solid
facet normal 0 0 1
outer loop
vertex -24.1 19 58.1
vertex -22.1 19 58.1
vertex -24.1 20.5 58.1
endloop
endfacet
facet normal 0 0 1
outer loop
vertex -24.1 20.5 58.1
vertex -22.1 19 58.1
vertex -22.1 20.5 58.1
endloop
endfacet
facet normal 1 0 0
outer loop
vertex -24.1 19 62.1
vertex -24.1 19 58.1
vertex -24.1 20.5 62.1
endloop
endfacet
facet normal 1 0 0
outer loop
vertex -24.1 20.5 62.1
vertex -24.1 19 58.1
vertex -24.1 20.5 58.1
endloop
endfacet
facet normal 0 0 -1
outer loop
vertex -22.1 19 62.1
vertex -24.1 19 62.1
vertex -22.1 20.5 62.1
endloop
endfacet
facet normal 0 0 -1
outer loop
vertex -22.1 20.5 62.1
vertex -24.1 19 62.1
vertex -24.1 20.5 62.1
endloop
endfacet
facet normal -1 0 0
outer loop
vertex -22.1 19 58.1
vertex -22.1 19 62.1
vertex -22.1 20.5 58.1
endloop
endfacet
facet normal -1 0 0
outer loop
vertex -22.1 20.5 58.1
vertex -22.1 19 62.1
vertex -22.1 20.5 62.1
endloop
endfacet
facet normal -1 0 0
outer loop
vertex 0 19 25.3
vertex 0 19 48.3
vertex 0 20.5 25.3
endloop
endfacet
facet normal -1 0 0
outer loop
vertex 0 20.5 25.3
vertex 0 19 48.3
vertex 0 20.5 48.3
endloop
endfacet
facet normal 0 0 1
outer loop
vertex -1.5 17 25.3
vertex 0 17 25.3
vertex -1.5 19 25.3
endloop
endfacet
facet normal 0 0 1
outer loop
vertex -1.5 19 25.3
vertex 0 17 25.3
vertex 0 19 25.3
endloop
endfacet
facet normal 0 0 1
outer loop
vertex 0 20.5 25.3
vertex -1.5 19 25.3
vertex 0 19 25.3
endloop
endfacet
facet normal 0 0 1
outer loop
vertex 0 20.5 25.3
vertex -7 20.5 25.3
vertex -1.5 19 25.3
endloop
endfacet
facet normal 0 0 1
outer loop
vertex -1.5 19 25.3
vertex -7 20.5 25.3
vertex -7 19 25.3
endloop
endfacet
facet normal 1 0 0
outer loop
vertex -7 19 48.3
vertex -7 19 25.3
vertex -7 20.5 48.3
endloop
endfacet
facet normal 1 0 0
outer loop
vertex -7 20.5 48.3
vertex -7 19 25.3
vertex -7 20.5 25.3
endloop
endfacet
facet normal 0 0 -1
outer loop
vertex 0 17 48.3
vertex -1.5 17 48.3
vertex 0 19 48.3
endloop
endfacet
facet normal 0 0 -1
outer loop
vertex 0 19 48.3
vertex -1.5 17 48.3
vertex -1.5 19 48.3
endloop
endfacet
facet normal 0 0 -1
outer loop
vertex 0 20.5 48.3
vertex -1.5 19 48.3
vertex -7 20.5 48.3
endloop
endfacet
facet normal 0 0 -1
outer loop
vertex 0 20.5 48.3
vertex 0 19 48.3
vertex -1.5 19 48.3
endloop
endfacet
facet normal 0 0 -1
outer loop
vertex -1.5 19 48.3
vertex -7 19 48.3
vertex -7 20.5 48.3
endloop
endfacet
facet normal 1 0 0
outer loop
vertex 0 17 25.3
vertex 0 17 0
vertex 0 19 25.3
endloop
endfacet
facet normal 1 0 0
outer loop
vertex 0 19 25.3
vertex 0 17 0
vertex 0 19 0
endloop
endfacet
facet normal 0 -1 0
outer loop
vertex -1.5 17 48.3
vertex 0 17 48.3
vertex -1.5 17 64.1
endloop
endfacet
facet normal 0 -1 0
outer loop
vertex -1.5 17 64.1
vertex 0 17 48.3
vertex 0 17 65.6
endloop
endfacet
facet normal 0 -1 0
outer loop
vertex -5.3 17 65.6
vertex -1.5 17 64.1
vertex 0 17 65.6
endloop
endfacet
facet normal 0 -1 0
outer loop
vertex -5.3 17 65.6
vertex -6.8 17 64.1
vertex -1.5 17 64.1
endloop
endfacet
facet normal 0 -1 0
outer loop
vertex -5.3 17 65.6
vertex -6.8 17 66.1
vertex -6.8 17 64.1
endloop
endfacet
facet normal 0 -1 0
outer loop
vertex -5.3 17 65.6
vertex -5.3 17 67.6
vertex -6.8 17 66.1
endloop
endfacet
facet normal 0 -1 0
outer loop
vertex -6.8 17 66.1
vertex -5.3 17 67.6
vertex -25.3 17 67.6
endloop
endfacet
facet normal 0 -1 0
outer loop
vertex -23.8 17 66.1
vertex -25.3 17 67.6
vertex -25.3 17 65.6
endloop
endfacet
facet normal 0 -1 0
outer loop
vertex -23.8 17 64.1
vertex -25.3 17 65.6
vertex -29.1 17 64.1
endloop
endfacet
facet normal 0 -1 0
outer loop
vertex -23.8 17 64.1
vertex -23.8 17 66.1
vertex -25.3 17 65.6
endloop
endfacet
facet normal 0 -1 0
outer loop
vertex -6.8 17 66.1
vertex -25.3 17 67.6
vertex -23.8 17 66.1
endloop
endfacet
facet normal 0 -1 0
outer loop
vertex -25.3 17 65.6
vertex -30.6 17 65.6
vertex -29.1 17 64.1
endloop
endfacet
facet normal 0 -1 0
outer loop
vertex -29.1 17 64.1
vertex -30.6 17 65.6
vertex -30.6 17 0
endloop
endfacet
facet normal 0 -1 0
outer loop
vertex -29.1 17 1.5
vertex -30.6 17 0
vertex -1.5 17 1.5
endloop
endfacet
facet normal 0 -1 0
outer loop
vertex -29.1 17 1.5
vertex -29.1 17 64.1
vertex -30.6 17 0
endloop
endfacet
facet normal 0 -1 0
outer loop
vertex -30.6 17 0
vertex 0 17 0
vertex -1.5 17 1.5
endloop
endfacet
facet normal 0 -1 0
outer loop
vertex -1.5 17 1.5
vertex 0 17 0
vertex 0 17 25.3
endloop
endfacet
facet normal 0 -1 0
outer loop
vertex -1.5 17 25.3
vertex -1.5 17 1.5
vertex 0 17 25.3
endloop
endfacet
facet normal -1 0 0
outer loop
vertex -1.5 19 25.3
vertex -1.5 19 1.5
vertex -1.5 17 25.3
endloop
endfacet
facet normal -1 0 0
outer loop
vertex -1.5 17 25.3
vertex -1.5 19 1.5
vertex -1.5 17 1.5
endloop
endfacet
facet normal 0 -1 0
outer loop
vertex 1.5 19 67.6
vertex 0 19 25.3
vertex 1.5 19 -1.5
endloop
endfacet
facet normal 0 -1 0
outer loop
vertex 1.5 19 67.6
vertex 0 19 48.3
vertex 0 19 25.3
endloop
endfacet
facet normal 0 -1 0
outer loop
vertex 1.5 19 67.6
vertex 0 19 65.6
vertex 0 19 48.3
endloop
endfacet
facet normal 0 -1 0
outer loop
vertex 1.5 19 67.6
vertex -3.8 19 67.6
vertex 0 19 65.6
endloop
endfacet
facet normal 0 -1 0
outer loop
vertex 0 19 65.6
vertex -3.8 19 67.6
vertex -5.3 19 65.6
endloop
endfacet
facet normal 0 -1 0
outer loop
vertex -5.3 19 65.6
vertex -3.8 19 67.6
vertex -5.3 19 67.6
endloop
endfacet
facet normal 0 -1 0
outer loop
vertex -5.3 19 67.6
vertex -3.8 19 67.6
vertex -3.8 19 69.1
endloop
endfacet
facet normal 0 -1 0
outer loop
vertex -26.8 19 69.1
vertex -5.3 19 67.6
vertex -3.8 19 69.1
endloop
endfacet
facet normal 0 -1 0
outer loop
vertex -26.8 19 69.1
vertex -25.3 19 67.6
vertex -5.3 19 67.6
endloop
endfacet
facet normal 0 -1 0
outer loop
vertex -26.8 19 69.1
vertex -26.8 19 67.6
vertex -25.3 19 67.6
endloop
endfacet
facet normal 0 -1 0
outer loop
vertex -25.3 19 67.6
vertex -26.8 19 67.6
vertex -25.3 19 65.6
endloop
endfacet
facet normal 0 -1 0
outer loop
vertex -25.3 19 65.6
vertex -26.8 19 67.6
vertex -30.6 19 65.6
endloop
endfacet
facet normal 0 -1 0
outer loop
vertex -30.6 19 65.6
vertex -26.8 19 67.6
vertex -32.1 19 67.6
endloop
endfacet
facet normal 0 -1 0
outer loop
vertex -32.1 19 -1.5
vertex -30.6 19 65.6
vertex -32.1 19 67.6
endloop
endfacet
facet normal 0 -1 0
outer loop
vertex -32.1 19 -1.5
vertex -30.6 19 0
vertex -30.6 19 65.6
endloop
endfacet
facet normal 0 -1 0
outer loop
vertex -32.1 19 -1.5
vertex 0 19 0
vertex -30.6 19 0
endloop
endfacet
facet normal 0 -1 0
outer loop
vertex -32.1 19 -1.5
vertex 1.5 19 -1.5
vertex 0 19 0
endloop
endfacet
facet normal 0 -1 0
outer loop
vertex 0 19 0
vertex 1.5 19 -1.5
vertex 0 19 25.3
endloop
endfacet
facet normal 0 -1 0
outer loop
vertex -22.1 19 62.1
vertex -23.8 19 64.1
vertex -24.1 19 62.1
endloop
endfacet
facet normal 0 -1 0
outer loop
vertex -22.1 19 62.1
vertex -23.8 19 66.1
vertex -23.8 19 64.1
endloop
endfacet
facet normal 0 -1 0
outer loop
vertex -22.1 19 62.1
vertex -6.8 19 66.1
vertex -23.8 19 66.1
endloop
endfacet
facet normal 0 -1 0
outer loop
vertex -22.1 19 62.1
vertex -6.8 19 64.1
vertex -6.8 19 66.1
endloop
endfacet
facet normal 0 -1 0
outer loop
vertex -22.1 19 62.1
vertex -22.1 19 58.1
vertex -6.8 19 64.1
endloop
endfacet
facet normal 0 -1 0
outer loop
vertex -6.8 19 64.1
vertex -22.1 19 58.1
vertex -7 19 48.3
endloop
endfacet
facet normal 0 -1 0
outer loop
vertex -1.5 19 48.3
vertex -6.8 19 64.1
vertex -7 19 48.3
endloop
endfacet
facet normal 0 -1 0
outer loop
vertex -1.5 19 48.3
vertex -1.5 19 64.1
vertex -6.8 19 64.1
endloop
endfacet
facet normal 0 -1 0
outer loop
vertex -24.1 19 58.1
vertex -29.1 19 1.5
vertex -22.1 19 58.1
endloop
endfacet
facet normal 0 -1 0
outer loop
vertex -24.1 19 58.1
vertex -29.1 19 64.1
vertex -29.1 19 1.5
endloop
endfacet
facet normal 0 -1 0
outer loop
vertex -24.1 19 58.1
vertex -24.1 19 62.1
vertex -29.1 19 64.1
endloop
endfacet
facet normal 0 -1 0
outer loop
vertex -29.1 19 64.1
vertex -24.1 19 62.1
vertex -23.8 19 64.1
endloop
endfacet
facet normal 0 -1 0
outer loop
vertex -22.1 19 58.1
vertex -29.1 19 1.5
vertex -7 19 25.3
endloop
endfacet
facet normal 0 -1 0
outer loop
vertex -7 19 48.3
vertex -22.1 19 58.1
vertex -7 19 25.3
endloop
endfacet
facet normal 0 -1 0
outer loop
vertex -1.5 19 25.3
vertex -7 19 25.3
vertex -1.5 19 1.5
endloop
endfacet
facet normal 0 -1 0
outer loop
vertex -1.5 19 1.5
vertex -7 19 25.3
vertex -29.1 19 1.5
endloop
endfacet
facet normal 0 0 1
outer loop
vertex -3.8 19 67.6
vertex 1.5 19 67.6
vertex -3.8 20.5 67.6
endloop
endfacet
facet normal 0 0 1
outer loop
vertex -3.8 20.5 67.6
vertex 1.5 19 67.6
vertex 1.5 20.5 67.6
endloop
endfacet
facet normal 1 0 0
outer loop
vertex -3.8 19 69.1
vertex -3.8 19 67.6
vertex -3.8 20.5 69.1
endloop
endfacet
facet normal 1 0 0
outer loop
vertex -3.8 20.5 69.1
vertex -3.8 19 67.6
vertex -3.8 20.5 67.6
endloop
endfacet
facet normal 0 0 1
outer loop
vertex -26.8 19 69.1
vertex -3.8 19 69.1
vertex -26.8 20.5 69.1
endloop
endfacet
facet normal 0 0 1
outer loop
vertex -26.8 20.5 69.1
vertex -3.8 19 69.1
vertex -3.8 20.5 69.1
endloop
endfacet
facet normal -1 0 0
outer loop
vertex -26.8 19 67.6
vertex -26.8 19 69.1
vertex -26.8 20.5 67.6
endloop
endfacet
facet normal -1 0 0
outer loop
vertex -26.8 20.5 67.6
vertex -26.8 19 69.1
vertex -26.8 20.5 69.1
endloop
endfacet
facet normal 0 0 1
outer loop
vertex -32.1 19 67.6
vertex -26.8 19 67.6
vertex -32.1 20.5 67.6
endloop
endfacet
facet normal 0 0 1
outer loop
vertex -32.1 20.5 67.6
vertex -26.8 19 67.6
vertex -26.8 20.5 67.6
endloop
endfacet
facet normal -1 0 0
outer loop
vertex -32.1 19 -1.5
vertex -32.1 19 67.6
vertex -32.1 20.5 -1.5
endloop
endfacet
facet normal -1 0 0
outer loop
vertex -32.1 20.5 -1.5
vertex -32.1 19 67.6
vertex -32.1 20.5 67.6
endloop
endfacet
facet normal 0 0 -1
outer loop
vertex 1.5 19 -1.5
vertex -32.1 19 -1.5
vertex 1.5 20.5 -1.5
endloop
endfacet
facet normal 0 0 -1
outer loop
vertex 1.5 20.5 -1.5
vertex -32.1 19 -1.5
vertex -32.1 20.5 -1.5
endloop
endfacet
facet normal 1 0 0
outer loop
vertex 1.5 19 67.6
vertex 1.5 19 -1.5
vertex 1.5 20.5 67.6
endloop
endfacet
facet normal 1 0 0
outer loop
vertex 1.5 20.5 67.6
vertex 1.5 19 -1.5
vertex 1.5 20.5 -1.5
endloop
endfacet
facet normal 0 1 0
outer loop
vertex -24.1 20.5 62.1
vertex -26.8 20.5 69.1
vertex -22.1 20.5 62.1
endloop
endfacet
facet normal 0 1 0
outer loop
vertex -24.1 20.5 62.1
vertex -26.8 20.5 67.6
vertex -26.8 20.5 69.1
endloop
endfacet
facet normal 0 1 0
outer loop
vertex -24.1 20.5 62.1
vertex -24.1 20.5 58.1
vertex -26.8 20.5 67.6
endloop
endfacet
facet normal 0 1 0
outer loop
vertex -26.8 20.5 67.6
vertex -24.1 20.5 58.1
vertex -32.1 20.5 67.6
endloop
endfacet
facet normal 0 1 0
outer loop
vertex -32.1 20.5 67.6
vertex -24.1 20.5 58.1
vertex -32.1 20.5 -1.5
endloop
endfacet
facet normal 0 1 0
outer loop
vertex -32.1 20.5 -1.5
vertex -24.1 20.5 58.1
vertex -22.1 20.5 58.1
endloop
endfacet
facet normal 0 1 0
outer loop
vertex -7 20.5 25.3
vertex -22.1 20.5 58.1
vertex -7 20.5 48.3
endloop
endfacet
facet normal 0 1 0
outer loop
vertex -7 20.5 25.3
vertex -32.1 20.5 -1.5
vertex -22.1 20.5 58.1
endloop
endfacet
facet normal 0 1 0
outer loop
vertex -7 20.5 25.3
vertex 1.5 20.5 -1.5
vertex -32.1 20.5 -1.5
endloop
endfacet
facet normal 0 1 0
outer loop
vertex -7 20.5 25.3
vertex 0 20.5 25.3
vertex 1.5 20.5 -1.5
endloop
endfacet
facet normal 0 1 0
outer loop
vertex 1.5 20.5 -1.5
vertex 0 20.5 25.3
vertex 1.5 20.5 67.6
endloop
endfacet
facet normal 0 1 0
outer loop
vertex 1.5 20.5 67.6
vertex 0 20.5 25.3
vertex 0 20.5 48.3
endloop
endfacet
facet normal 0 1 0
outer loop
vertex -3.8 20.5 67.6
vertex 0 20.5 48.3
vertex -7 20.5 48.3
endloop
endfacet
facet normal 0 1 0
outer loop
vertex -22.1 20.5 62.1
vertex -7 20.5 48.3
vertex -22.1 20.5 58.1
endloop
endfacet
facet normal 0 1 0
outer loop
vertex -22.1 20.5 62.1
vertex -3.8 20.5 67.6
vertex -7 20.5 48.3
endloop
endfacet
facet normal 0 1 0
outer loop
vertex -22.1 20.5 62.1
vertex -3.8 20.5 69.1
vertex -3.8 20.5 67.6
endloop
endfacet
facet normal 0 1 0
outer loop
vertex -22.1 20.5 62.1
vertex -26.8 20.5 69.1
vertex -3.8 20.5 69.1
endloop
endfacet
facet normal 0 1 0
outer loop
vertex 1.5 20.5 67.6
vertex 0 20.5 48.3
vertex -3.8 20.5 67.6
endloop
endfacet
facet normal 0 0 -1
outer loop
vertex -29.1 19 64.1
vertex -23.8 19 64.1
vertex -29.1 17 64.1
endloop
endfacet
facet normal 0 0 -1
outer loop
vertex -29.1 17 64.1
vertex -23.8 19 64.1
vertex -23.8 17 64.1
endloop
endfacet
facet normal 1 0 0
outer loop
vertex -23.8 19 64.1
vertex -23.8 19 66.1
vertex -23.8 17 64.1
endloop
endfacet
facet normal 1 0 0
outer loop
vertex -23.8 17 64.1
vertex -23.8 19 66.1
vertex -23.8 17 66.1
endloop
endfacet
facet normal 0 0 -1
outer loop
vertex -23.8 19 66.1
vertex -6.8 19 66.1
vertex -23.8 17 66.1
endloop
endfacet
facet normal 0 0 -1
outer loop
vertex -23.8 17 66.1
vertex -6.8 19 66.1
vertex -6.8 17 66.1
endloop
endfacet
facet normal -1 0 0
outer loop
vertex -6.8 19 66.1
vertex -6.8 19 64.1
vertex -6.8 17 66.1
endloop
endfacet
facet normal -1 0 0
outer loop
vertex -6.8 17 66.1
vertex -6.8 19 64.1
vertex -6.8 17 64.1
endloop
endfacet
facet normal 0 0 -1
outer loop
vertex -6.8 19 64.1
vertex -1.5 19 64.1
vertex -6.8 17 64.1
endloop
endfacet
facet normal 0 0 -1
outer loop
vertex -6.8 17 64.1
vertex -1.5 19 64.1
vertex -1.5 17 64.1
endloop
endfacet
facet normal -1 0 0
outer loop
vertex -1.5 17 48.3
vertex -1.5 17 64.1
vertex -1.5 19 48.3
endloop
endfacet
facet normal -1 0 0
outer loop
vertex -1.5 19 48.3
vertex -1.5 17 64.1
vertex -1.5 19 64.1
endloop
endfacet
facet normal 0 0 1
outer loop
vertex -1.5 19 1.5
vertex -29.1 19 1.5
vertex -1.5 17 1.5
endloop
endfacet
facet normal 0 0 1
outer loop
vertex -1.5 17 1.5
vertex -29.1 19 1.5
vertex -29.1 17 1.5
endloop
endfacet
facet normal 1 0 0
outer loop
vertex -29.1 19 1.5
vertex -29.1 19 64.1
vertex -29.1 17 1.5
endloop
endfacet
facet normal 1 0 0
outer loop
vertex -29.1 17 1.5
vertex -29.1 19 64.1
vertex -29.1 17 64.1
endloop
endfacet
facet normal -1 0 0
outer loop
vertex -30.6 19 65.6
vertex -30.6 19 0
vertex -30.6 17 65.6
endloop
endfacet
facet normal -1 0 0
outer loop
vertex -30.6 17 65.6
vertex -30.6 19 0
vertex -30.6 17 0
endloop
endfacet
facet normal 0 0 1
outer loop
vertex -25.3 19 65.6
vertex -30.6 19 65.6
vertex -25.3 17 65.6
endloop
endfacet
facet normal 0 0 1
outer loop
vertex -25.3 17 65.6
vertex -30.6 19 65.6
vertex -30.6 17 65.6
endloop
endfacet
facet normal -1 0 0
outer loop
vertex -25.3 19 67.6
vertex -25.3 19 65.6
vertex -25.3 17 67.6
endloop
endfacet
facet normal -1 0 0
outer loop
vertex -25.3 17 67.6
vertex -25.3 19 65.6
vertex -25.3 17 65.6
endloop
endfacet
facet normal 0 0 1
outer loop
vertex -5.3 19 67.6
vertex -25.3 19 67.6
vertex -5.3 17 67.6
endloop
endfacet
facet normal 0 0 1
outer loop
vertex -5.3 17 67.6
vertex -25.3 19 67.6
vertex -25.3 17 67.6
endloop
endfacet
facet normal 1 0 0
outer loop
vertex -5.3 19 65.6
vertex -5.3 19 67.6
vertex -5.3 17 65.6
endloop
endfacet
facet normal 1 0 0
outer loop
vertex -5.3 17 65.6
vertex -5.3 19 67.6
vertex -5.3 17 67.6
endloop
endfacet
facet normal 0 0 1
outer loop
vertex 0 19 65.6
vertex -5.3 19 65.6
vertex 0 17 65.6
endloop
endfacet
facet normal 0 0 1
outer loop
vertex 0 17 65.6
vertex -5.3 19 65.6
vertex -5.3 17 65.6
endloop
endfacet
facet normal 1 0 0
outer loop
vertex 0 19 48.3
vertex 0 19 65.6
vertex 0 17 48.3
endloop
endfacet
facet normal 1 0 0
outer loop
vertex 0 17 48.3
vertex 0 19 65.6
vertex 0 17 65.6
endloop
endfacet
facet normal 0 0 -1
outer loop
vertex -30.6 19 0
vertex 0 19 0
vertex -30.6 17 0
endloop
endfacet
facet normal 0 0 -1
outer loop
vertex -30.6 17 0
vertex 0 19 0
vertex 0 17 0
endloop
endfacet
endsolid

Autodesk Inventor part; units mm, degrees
ref_plane "YZ Plane" through (0, 0, 0) normal (1, 0, 0) x (0, 1, 0)
ref_plane "XZ Plane" through (0, 0, 0) normal (0, 1, 0) x (-1, 0, 0)
ref_plane "XY Plane" through (0, 0, 0) normal (0, 0, 1) x (1, 0, 0)
ref_plane "Płaszczyzna konstrukcyjna1" through (0, 19, 0) normal (0, 1, 0) x (1, 0, 0)
sketch "Szkic21" plane through (0, 19, 0) normal (0, 1, 0) x (1, 0, 0)
  line L0 (-5.3, -65.6) -> (-5.3, -67.6) projected
  line L1 (-25.3, -67.6) -> (-5.3, -67.6)
  line L2 (0, -65.6) -> (-5.3, -65.6) projected
  line L3 (-5.3, -67.6) -> (-5.3, -65.6)
  line L4 (-5.3, -65.6) -> (0, -65.6)
  line L5 (0, 0) -> (0, -65.6) projected
  line L6 (0, -65.6) -> (0, 0)
  line L7 (-30.6, -65.6) -> (-30.6, 0) projected
  line L8 (0, 0) -> (-30.6, 0)
  line L9 (-30.6, 0) -> (-30.6, -65.6)
  line L10 (-25.3, -67.6) -> (-25.3, -65.6) projected
  line L11 (-30.6, -65.6) -> (-25.3, -65.6)
  line L12 (-25.3, -65.6) -> (-25.3, -67.6)
  line L13 (-30.6, -65.6) -> (-29.1, -65.6) construction
  line L14 (-29.1, -65.6) -> (-29.1, -64.1) construction
  line L15 (-29.1, -64.1) -> (-30.6, -64.1) construction
  line L16 (-30.6, -64.1) -> (-30.6, -65.6) construction
  line L17 (-30.6, 0) -> (-29.1, 0) construction
  line L18 (-29.1, 0) -> (-29.1, -1.5) construction
  line L19 (-29.1, -1.5) -> (-30.6, -1.5) construction
  line L20 (-30.6, -1.5) -> (-30.6, 0) construction
  line L21 (0, 0) -> (-1.5, 0) construction
  line L22 (-1.5, 0) -> (-1.5, -1.5) construction
  line L23 (-1.5, -1.5) -> (0, -1.5) construction
  line L24 (0, -1.5) -> (0, 0) construction
  line L25 (0, -65.6) -> (-1.5, -65.6) construction
  line L26 (-1.5, -65.6) -> (-1.5, -64.1) construction
  line L27 (-1.5, -64.1) -> (0, -64.1) construction
  line L28 (0, -64.1) -> (0, -65.6) construction
  line L29 (-5.3, -65.6) -> (-6.8, -65.6) construction
  line L30 (-6.8, -65.6) -> (-6.8, -64.1) construction
  line L31 (-6.8, -64.1) -> (-5.3, -64.1) construction
  line L32 (-5.3, -64.1) -> (-5.3, -65.6) construction
  line L33 (-5.3, -67.6) -> (-6.8, -67.6) construction
  line L34 (-6.8, -67.6) -> (-6.8, -66.1) construction
  line L35 (-6.8, -66.1) -> (-5.3, -66.1) construction
  line L36 (-5.3, -66.1) -> (-5.3, -67.6) construction
  line L37 (-21.8, -67.6) -> (-25.3, -67.6) construction
  line L38 (-25.3, -67.6) -> (-23.8, -67.6) construction
  line L39 (-23.8, -67.6) -> (-23.8, -66.1) construction
  line L40 (-23.8, -66.1) -> (-25.3, -66.1) construction
  line L41 (-25.3, -66.1) -> (-25.3, -67.6) construction
  line L42 (-25.3, -65.6) -> (-23.8, -65.6) construction
  line L43 (-23.8, -65.6) -> (-23.8, -64.1) construction
  line L44 (-23.8, -64.1) -> (-25.3, -64.1) construction
  line L45 (-25.3, -64.1) -> (-25.3, -65.6) construction
  line L46 (-29.1, -64.1) -> (-29.1, -1.5)
  line L47 (-29.1, -1.5) -> (-1.5, -1.5)
  line L48 (-1.5, -1.5) -> (-1.5, -64.1)
  line L49 (-1.5, -64.1) -> (-6.8, -64.1)
  line L50 (-6.8, -64.1) -> (-6.8, -66.1)
  line L51 (-6.8, -66.1) -> (-23.8, -66.1)
  line L52 (-23.8, -66.1) -> (-23.8, -64.1)
  line L53 (-23.8, -64.1) -> (-29.1, -64.1)
  dimension "d115" = 1.5
  dimension "d116" = 1.5
  dimension "d117" = 1.5
  dimension "d118" = 1.5
  dimension "d119" = 1.5
  dimension "d120" = 1.5
  dimension "d121" = 1.5
  dimension "d122" = 1.5
  dimension "d123" = 1.5
  dimension "d124" = 1.5
  dimension "d125" = 1.5
  dimension "d126" = 1.5
  dimension "d127" = 1.5
  dimension "d128" = 1.5
  dimension "d129" = 1.5
  dimension "d130" = 1.5
extrude "Wyciągnięcie proste19" add sketch "Szkic21" against normal blind 2
ref_plane "Płaszczyzna konstrukcyjna3" through (0, 19, 0) normal (0, 1, 0) x (1, 0, 0)
sketch "Szkic22" plane through (0, 19, 0) normal (0, 1, 0) x (1, 0, 0)
  line L0 (1.5, -67.6) -> (1.5, 1.5) projected
  line L1 (1.5, -67.6) -> (1.5, 1.5)
  line L2 (1.5, 1.5) -> (-32.1, 1.5) projected
  line L3 (1.5, 1.5) -> (-32.1, 1.5)
  line L4 (-32.1, -67.6) -> (-26.8, -67.6) projected
  line L5 (-32.1, 1.5) -> (-32.1, -67.6)
  line L6 (-32.1, -67.6) -> (-26.8, -67.6)
  line L7 (-26.8, -69.1) -> (-23.3, -69.1) projected
  line L8 (-26.8, -67.6) -> (-26.8, -69.1)
  line L9 (-7.3, -69.1) -> (-3.8, -69.1) projected
  line L10 (-26.8, -69.1) -> (-3.8, -69.1)
  line L11 (-3.8, -69.1) -> (-3.8, -67.6)
  line L12 (-3.8, -67.6) -> (1.5, -67.6) projected
  line L13 (-3.8, -67.6) -> (1.5, -67.6)
  point P0 (0, 0)
extrude "Wyciągnięcie proste20" add sketch "Szkic22" along normal blind 1.5
ref_plane "Płaszczyzna konstrukcyjna2" through (0, 24, 0) normal (0, 1, 0) x (1, 0, 0)
ref_plane "Płaszczyzna konstrukcyjna5" through (0, 24, 0) normal (0, 1, 0) x (1, 0, 0)
ref_plane "Płaszczyzna konstrukcyjna6" through (0, 24, 0) normal (0, 1, 0) x (1, 0, 0)
ref_plane "Płaszczyzna konstrukcyjna4" through (0, 20.5, 0) normal (0, 1, 0) x (1, 0, 0)
sketch "Szkic26" plane through (0, 20.5, 0) normal (0, 1, 0) x (1, 0, 0)
  line L0 (1.5, -67.6) -> (1.5, 1.5) construction
  line L1 (1.5, 1.5) -> (1.5, -0.3) construction
  line L2 (1.5, -0.3) -> (1.5, -25.3) construction
  line L3 (1.5, -0.3) -> (1.5, -48.3) construction
  line L4 (1.5, -48.3) -> (0, -48.3) construction
  line L5 (0, -48.3) -> (-7, -48.3)
  line L6 (-7, -48.3) -> (-7, -25.3)
  line L7 (-7, -25.3) -> (0, -25.3)
  line L8 (0, -25.3) -> (0, -48.3)
  point P0 (0, 0)
  dimension "d146" = 1.8
  dimension "d147" = 25
  dimension "d148" = 48
  dimension "d149" = 7
extrude "Wyciągnięcie proste24" cut sketch "Szkic26" against normal blind 5
sketch "Szkic28" plane through (0, 20.5, 0) normal (0, 1, 0) x (1, 0, 0)
  line L0 (-32.1, -67.6) -> (-26.8, -67.6) construction
  line L1 (-32.1, -67.6) -> (-24.1, -67.6) construction
  line L2 (-24.1, -67.6) -> (-22.1, -67.6) construction
  line L3 (-23.3, -67.6) -> (-7.3, -67.6) construction
  line L4 (-24.1, -67.6) -> (-24.1, -69.1) construction
  line L5 (-26.8, -69.1) -> (-3.8, -69.1) construction
  line L6 (-24.1, -69.1) -> (-24.1, -62.1) construction
  line L7 (-24.1, -62.1) -> (-24.1, -58.1) construction
  line L8 (-24.1, -62.1) -> (-22.1, -62.1) construction
  line L9 (-22.1, -62.1) -> (-24.1, -62.1)
  line L10 (-24.1, -62.1) -> (-24.1, -58.1)
  line L11 (-24.1, -58.1) -> (-22.1, -58.1)
  line L12 (-22.1, -58.1) -> (-22.1, -62.1)
  point P0 (0, 0)
  dimension "d158" = 8
  dimension "d159" = 2
  dimension "d160" = 7
  dimension "d161" = 4
  dimension "d162" = 2
extrude "Wyciągnięcie proste26" cut sketch "Szkic28" against normal blind 10
properties part number "goraczesc2zotworem"
